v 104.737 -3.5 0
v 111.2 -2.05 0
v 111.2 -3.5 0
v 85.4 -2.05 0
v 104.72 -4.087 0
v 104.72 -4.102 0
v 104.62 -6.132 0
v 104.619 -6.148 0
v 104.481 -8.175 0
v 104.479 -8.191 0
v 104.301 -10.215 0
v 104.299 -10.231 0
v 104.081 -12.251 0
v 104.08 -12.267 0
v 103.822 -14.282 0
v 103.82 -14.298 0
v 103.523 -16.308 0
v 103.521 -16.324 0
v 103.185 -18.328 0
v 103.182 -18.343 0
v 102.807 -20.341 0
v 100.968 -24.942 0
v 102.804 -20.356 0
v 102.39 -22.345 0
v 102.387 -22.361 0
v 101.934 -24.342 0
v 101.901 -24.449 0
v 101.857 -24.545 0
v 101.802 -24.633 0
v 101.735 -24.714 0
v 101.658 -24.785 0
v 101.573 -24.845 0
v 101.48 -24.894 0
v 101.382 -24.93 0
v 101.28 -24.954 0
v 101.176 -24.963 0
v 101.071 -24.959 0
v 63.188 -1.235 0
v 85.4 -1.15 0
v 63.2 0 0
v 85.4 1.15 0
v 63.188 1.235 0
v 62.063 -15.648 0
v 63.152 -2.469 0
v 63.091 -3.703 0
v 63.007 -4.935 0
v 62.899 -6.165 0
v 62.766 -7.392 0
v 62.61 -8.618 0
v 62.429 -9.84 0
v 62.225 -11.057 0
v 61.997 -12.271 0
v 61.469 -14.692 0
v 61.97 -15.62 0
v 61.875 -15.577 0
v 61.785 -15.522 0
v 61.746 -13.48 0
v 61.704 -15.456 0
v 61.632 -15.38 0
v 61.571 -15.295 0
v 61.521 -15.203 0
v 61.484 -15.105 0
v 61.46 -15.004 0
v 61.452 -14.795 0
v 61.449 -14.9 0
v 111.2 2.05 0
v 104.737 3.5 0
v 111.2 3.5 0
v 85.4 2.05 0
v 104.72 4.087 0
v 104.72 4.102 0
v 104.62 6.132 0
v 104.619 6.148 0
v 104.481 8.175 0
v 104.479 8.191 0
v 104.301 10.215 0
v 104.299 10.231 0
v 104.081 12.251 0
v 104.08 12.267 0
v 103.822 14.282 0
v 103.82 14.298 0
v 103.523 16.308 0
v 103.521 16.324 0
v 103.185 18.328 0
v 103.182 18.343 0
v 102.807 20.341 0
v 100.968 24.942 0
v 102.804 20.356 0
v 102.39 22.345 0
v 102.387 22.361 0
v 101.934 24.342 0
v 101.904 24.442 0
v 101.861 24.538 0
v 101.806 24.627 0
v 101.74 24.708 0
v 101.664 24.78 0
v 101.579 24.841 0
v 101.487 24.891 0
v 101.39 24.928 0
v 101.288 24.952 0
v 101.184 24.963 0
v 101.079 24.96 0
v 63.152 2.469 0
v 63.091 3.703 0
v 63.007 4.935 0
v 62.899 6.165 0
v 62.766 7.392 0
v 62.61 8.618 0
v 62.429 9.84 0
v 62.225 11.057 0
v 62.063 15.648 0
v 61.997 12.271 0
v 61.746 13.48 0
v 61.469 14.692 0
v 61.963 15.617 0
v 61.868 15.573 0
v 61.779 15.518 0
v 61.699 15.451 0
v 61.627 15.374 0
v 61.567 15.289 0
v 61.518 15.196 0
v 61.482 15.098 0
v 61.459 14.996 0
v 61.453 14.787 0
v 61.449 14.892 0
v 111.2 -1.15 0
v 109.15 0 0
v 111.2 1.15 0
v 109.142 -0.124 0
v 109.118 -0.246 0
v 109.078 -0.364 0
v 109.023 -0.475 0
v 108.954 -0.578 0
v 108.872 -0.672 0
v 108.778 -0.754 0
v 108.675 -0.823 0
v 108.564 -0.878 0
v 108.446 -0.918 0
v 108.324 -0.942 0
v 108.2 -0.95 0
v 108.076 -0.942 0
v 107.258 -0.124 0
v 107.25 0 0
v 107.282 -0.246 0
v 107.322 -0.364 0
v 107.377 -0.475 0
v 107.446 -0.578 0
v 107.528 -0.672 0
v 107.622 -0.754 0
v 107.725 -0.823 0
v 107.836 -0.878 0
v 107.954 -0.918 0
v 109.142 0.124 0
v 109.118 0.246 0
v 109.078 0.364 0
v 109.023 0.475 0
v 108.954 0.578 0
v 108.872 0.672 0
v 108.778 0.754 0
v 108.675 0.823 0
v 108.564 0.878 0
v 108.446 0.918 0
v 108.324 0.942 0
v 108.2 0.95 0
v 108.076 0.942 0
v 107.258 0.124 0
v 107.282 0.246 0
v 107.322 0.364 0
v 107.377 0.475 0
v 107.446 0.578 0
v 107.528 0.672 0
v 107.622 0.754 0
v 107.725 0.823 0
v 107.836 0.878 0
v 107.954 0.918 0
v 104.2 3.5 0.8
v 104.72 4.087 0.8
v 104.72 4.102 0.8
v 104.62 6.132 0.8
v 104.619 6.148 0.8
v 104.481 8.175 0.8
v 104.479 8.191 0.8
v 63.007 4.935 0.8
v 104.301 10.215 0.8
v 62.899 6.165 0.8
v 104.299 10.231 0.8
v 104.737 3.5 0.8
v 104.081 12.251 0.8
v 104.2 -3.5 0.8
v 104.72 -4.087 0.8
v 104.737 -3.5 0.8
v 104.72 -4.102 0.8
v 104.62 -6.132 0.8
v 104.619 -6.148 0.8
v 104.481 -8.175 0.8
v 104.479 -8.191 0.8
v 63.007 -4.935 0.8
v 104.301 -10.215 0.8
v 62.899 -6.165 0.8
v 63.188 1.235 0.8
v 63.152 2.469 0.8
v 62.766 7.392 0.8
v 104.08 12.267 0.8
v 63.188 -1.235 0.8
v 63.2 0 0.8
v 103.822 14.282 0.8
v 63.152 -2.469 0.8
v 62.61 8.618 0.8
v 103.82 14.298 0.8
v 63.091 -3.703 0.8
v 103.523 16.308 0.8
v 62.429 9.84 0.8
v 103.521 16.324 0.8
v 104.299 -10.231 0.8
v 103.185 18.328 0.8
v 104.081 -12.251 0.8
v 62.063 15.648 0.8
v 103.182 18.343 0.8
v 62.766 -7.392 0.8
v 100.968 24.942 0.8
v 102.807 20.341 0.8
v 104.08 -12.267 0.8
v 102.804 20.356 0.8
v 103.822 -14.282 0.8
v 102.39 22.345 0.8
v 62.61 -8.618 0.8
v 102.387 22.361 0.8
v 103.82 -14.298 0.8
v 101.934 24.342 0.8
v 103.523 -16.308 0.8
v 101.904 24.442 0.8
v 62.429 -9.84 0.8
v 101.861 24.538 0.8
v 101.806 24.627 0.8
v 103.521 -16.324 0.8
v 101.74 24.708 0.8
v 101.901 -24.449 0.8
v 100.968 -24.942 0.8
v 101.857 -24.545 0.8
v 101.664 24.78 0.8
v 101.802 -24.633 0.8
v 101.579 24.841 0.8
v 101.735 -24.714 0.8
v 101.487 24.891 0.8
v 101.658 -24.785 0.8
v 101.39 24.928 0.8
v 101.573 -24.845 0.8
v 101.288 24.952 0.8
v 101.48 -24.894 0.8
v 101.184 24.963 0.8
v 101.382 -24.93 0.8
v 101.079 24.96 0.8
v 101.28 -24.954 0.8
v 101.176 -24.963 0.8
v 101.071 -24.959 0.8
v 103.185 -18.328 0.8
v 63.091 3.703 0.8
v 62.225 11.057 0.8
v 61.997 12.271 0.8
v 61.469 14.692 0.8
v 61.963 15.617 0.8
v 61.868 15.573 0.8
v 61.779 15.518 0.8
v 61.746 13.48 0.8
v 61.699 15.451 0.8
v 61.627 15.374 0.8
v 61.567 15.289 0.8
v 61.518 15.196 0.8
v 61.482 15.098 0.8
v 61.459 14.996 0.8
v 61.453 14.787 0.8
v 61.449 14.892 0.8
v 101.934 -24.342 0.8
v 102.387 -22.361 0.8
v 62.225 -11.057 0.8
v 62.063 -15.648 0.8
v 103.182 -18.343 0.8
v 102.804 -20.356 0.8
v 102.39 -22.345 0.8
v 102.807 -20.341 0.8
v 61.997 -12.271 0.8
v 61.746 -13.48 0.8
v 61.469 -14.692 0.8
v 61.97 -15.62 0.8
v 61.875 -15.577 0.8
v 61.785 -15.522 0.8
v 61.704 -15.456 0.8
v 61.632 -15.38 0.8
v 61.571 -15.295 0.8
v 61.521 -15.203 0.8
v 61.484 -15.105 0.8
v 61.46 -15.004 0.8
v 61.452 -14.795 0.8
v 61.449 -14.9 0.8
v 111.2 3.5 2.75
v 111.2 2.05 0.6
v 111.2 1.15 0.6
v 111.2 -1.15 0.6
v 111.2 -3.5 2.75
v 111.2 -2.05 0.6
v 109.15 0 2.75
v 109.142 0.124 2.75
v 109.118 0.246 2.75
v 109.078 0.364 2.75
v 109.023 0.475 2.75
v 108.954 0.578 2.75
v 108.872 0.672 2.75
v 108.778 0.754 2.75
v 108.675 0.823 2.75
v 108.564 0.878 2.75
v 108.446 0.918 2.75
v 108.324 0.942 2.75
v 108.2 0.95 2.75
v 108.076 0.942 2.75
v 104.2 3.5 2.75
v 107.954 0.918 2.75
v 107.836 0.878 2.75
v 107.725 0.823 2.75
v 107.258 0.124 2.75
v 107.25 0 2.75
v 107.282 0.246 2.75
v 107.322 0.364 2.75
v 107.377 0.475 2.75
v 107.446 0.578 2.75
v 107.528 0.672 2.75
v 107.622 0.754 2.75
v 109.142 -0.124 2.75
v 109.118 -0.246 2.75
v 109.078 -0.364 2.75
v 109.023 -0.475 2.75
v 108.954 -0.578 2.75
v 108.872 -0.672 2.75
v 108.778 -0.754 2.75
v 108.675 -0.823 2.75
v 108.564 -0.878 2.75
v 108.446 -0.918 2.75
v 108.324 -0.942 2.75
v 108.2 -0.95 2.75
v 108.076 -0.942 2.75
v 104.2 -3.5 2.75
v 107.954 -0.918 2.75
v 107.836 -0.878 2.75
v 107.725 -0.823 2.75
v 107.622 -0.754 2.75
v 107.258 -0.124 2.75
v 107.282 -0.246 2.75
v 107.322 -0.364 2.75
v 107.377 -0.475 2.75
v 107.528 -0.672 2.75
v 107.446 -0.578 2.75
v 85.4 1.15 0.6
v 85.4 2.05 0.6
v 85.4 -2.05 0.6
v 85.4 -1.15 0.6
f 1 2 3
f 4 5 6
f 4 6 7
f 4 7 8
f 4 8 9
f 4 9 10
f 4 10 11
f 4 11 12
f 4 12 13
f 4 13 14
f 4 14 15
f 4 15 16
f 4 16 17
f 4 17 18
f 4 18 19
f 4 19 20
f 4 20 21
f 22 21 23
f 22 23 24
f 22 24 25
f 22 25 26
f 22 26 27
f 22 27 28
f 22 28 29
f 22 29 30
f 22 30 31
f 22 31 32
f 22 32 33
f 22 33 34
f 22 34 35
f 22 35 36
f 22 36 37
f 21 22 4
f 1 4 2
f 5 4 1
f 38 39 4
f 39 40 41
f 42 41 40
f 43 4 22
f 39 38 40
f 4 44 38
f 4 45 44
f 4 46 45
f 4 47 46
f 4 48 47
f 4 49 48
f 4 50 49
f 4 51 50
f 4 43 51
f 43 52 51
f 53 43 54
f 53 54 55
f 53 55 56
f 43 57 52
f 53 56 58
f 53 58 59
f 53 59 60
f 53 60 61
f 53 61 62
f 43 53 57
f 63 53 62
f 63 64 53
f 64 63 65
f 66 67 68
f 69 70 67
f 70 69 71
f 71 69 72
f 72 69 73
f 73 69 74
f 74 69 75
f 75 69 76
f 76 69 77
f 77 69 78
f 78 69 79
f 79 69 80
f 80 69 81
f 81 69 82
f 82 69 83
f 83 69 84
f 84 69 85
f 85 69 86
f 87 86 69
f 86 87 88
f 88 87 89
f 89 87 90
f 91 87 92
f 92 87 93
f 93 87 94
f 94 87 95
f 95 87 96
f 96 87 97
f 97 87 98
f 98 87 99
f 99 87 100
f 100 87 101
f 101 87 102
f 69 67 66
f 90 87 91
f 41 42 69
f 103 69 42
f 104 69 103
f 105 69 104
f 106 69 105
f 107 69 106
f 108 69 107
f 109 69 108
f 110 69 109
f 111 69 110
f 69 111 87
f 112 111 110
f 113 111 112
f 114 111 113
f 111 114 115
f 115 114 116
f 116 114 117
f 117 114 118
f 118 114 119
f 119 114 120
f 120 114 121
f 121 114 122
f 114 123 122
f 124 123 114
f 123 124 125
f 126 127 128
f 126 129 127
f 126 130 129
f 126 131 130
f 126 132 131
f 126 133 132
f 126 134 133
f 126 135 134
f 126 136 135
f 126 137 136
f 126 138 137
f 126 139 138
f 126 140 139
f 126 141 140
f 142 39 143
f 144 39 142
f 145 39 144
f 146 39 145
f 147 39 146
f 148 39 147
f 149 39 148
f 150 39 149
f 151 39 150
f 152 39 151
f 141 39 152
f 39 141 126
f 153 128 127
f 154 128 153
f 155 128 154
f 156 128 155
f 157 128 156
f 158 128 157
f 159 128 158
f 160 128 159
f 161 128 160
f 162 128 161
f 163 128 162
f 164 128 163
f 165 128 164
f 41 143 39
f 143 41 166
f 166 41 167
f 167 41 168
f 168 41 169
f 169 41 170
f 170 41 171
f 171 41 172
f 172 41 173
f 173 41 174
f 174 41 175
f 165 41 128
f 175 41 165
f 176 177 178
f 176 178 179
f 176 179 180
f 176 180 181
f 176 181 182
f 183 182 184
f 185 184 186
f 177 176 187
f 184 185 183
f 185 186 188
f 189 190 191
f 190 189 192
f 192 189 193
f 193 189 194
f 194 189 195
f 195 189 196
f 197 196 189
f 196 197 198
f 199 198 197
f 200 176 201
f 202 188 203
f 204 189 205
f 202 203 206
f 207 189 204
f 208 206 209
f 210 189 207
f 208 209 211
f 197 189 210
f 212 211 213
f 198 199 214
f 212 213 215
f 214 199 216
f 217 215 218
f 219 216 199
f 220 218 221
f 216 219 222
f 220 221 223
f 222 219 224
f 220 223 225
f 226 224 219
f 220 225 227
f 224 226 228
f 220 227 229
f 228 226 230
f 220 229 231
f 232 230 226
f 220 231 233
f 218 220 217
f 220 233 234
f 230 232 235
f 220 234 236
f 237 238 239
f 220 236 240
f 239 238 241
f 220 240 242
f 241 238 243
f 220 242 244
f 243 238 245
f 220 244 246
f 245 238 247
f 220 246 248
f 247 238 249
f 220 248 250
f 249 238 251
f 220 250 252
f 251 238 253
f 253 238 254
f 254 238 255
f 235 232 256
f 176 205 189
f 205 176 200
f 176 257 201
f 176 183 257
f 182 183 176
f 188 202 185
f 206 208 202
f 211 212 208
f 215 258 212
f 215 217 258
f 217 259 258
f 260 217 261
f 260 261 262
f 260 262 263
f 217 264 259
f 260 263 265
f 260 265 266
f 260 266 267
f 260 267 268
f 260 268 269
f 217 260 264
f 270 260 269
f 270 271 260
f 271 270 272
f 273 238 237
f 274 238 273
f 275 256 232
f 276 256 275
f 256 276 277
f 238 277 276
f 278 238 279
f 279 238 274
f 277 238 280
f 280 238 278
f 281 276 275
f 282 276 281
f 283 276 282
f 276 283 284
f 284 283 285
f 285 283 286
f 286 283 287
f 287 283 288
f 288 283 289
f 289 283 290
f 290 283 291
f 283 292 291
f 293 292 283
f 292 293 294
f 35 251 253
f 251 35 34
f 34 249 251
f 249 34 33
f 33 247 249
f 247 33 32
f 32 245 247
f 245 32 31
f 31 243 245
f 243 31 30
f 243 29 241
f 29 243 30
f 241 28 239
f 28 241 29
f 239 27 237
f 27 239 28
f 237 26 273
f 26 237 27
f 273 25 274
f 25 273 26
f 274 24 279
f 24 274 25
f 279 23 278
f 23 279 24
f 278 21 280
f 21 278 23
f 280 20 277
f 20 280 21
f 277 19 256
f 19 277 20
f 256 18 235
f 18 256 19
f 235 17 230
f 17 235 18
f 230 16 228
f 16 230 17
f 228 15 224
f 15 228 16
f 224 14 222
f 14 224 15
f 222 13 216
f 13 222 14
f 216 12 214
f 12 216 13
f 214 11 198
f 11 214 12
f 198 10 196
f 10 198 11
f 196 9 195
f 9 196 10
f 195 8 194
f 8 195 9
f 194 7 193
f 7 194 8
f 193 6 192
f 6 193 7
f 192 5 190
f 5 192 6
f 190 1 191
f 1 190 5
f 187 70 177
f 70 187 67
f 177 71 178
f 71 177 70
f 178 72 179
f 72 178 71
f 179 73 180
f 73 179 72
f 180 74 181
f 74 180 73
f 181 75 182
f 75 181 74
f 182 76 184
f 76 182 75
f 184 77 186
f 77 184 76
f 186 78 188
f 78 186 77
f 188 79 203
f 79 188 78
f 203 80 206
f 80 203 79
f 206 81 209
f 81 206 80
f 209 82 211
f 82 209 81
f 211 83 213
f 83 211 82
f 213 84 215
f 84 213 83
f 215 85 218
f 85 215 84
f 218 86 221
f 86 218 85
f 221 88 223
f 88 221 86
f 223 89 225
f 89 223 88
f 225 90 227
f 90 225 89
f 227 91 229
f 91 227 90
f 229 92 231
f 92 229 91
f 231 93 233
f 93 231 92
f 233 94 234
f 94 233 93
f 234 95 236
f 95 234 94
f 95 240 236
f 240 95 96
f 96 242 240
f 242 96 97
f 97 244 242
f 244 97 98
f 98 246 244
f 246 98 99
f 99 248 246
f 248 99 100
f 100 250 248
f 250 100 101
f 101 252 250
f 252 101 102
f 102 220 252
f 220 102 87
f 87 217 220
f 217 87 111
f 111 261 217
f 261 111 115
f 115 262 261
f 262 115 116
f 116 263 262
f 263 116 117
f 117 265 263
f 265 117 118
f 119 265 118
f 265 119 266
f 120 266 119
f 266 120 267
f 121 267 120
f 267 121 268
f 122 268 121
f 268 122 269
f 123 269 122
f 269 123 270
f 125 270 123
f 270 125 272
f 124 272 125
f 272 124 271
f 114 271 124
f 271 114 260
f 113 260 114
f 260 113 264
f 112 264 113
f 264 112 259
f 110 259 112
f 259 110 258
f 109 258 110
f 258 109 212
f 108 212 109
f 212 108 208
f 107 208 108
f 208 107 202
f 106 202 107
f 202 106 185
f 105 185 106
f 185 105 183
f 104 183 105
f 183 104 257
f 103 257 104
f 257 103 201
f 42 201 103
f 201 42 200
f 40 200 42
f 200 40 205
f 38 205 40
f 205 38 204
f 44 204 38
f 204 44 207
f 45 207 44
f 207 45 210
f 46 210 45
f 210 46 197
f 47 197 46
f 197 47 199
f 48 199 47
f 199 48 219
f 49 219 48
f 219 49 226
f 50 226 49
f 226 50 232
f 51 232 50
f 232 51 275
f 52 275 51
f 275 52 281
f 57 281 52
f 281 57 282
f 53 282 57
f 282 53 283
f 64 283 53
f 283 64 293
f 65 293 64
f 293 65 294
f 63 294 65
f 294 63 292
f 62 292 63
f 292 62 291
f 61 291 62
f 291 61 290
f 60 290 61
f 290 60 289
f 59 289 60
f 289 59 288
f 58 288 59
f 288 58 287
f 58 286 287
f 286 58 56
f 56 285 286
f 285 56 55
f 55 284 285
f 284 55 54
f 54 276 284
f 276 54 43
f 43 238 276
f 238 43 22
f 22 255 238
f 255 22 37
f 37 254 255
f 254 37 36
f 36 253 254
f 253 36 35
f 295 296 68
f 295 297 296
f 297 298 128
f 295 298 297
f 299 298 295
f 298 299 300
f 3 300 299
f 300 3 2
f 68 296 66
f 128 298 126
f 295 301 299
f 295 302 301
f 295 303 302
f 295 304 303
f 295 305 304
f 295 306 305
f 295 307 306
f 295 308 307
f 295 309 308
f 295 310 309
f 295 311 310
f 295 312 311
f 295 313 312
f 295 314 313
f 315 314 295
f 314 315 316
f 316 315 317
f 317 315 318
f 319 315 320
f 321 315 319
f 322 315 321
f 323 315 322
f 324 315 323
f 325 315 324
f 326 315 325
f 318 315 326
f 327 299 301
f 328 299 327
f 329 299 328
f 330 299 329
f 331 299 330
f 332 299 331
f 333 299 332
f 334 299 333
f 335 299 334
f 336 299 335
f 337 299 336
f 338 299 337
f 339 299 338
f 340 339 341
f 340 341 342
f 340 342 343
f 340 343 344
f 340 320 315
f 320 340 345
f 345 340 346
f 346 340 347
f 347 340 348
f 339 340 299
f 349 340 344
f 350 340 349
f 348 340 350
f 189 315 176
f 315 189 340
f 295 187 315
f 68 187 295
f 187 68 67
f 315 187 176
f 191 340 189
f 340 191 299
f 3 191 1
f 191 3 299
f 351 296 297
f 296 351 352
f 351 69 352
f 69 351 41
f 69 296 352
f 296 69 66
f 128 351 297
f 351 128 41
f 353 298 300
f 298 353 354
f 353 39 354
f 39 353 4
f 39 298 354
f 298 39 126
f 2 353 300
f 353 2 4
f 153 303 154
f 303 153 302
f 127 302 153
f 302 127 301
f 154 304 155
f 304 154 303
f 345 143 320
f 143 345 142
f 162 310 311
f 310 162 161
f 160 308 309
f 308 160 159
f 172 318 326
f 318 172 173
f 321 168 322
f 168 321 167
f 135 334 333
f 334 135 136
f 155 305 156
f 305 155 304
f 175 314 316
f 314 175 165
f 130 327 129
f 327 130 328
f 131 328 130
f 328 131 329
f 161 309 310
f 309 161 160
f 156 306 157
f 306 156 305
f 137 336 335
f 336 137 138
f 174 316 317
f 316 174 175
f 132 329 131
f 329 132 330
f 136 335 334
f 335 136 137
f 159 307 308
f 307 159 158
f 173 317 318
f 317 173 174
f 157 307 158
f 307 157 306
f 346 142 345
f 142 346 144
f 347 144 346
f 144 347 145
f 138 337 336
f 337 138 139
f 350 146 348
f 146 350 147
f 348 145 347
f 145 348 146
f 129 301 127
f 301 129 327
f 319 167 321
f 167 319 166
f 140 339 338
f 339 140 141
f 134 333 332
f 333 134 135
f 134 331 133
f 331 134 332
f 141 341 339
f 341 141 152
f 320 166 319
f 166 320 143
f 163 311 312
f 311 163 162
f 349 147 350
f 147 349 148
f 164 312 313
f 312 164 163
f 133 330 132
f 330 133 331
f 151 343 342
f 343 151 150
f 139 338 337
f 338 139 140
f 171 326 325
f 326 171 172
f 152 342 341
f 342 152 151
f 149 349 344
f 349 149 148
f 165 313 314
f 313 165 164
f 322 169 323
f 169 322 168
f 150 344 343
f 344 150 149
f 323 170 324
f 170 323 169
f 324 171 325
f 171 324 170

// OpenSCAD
// file: parameters.scad
// =============================================================================
// Gen-CE — nightly 2026-10-14 (physics_scorer, honest magpylib watts)
// Wire-saver stator for the Gen-CD rotors: only 3.9 mm of copper (≈9 layers), magnet faces ≈6.5 mm apart, peak Bz ≈0.70 T. Uses ≈300 m of wire (≈80 m less than Gen-CD) and still clears Gen-BX; shares every rotor part, the steel, the frame rods and the bearing bridges with Gen-CD, so the two stators swap on the same machine.
// Clocking 0 deg (magnets N facing S) + D-flat keyed bore + index notch + flip-symmetric hole map.
// Windable 2-piece bobbin; turns = physics_scorer turns_fit; copper only between flanges.
// Steel back-iron: 2× Ø198 × 4.76 mm (3/16") mild-steel discs (steel_backiron_disc.dxf); magnets sit ON the steel
// (through-pockets) -> score with --back-iron. Night 2026-10-14.
// =============================================================================
topology            = "dual_rotor";

// --- Wire / winding (physics_scorer winding-fit) -------------------------------
wire_awg            = 26;
wire_od             = 0.45;     // insulated OD mm (bare 0.405)
fill_realistic      = 0.65;     // insulated-wire area / window (DENSE layered wind with a jig; scorer cap 0.65)
turns               = 288;       // = physics_scorer turns_fit (do NOT raise)
coil_former_type    = "bobbin";
coil_core_inset     = 18.10;     // radial copper build: hub = copper boundary inset by this
wind_build_axial    = 0.0;      // nothing proud of the flanges
wind_build_radial   = 0.0;

// --- Bobbin (base + lid) ---------------------------------------------------------
coil_id_r           = 64.00;    // copper boundary sector
coil_od_r           = 104.00;
span_deg            = 26.87;    // = pitch - 2*asin((wall+0.85)/coil_id_r) -> >=1.2 mm stator web
former_web          = 3.90;     // copper height between flanges (TALL copper: steel keeps Bz up)
flange_t            = 0.80;     // >= 0.8 mm FDM wall rule (tall winds push on the flanges)
wall                = 0.80;     // flange lip beyond copper
former_bare_h       = former_web + 2 * flange_t;
coil_envelope_h     = former_bare_h + 2 * wind_build_axial;
tab_w               = 7.0;
tab_len             = 7.0;
tab_h               = former_bare_h / 2;
pin_d               = 1.9;      // 1.75 mm filament locating pin
coil_mount_r        = coil_od_r + 0.2 + 4.0;
lead_y              = 1.6;
lead_slot_w         = 0.9;
lead_groove_d       = 0.6;

// --- Gap -------------------------------------------------------------------------
run_clear           = 0.50;     // rotor face -> flange
gap_spacer_h        = run_clear + wind_build_axial;
m2m                 = coil_envelope_h + 2 * run_clear;   // rotor face to rotor face (= gap_sleeve length)

// --- Stator ----------------------------------------------------------------------
coil_stations       = 12;
bay_clear           = 0.35;     // 0.35 mm: bobbin BASES print IN PLACE inside the stator bays (print-in-place gap), then pop out
stator_thick        = former_bare_h;                        // bobbins flush both faces
stator_od           = 229.0;
shaft_clear_stator  = 14.0;     // stator is static; gap sleeve OD 12 spins inside
stator_ir           = 58.85;    // ANNULAR stator: open centre (nested one-plate pack); inner rim 4.0 mm

// --- Rotor(s) --------------------------------------------------------------------
magnet_Br           = 1.43;     // N52
magnet_d_large      = 20.0;
magnet_h_large      = 5.0;      // one O20x5 per pocket
magnet_h_small      = 5.0;      // unused: no O5 pockets in this kit
halbach_magnetisation = "none";  // NO O5 assist magnets in this kit (scan: they lower the 4-pole score)
rotor_b_same_axis   = true;     // same-index magnets share one axis: N faces S across the gap
large_pocket_d      = 20.3;
small_pocket_d      = 5.3;
pocket_h            = 5.00;     // THROUGH the carrier: magnet back face sits on the steel disc (FLUSH seat: carrier = magnet height, magnet face level with the rotor face)
large_n             = 8;
R_large             = 86.0;
small_r_list        = [];       // no O5 pockets
carrier_od          = 198.0;
ring_ir             = 72.85;    // RING rotor: PLA magnet ring r ring_ir..carrier_od/2 (steel disc = structural rotor)
hub_flange_od       = 74.0;     // separate rotor_hub flange (inside the ring, flush with the ring face)
csk_d               = 6.6;      // M3 countersunk head pocket (ISO 10642 head 6.0 nominal) on the stator face
csk_depth           = 1.55;     // = (csk_d - m3_clear) / 2: 90 deg cone; head sits 0.3 mm below the face
n_seg               = 8;        // magnet-carrier ARCS per rotor (segmented carrier)
seg_deg             = 360 / n_seg;
seg_start           = -22.5;   // arc edge angle (between pocket 0 and its clamp bolt)
seg_kerf_deg        = 0.4;      // gap between neighbouring arcs on the steel
carrier_thick       = pocket_h;
hub_h               = 12.0;     // > steel_t + insert: radial set-screw clears the steel
hub_od              = 24.0;     // slim hub so the M4 brace rods fit at R~18 inside the coil ring
hub_insert_d        = 4.0;      // M3 heat-set insert, radial, bears on the D-flat
rotor_b_offset_deg  = 0.0;      // CLOCKING: magnets directly opposite
shaft_key           = "dflat";
dflat_depth         = 0.5;      // 8 mm shaft with 0.5 mm flat (7.5 across flat)
index_notch_d       = 3.0;

// --- Steel back-iron (buyable laser-cut) -------------------------------------------
steel_t             = 4.76;      // mild steel thickness (image method ignores it; sized from steel_flux.py so the return path stays well below saturation)
steel_center_hole   = 26.0;     // slips over the rotor hub (OD 24)
steel_od            = carrier_od;   // steel disc OD = rotor carrier OD

// --- Modular MAX interface ----------------------------------------------------------
shaft_bore          = 8.35;
dflat_x             = 4.0 - dflat_depth + (shaft_bore - 8.0) / 2;
bearing_d           = 21.85;
bearing_h           = 7.2;
m3_clear            = 3.5;
bolt_r_inner        = 30.0;     // M3 steel-disc clamp bolts (inside the magnet ring)
bolt_n_inner        = 4;
bolt_inner_angles   = [0, 90, 180, 270];
bolt_r_outer        = 86.0;     // second M3 steel-disc clamp ring
bolt_outer_angles   = [22.5, 67.5, 112.5, 157.5, 202.5, 247.5, 292.5, 337.5];
flange_bolt_r       = 109.5;     // frame rods: OUTSIDE the rotor OD (rotors spin inside them)
flange_bolt_n       = 4;
flange_bolt_offset  = 45.00;    // between coil stations -> never cuts a lead groove/tab
brace_r             = 18.0;
brace_d             = 4.3;      // temporary M4 jack rods (assembly only)
brace_n             = 4;
brace_angles        = [45, 135, 225, 315];          // flip-symmetric

spacer_pad_od       = 14.0;
spacer_pad_id       = m3_clear;
endbell_od          = 229.0;
endbell_thick       = 8.0;
endbell_shaft_clear = 10.0;
collar_h            = 10.0;
standoff_od         = 9.0;
frame_standoff_h    = run_clear + carrier_thick + hub_h + collar_h + 2.0;
sleeve_od           = 12.0;
plate_max_mm        = 410;

$fn = 64;
// main file
// Gen-CE — bobbin LID (top flange + locating tab). Print x12, flange face DOWN on the bed.
// CA-glue onto the hub top BEFORE winding. Tab = lap joint into the stator tab pocket; 1.75 mm filament
// pin through pin hole + stator ledge, trim flush. Lead slots carry both leads flush.
include <parameters.scad>;
$fn = 48;
module sector_2d(r_in, r_out, ang) {
    polygon([
        for (a = [-ang/2 : ang/24 : ang/2]) [r_in*cos(a), r_in*sin(a)],
        for (a = [ang/2 : -ang/24 : -ang/2]) [r_out*cos(a), r_out*sin(a)]
    ]);
}
module footprint_2d() { offset(r=wall) sector_2d(coil_id_r, coil_od_r, span_deg); }
module hub_2d()       { offset(delta=-coil_core_inset) sector_2d(coil_id_r, coil_od_r, span_deg); }

difference() {
    union() {
        linear_extrude(flange_t) footprint_2d();
        translate([coil_od_r + 0.2, -tab_w/2, 0]) cube([tab_len, tab_w, tab_h]);
    }
    translate([coil_mount_r, 0, -0.1]) cylinder(d=pin_d, h=tab_h + 1);
    for (y = [lead_y, -lead_y])
        translate([coil_od_r - coil_core_inset - 0.5, y - lead_slot_w/2, -0.1])
            cube([coil_core_inset + tab_len + 2, lead_slot_w, lead_groove_d + 0.1]);
}
